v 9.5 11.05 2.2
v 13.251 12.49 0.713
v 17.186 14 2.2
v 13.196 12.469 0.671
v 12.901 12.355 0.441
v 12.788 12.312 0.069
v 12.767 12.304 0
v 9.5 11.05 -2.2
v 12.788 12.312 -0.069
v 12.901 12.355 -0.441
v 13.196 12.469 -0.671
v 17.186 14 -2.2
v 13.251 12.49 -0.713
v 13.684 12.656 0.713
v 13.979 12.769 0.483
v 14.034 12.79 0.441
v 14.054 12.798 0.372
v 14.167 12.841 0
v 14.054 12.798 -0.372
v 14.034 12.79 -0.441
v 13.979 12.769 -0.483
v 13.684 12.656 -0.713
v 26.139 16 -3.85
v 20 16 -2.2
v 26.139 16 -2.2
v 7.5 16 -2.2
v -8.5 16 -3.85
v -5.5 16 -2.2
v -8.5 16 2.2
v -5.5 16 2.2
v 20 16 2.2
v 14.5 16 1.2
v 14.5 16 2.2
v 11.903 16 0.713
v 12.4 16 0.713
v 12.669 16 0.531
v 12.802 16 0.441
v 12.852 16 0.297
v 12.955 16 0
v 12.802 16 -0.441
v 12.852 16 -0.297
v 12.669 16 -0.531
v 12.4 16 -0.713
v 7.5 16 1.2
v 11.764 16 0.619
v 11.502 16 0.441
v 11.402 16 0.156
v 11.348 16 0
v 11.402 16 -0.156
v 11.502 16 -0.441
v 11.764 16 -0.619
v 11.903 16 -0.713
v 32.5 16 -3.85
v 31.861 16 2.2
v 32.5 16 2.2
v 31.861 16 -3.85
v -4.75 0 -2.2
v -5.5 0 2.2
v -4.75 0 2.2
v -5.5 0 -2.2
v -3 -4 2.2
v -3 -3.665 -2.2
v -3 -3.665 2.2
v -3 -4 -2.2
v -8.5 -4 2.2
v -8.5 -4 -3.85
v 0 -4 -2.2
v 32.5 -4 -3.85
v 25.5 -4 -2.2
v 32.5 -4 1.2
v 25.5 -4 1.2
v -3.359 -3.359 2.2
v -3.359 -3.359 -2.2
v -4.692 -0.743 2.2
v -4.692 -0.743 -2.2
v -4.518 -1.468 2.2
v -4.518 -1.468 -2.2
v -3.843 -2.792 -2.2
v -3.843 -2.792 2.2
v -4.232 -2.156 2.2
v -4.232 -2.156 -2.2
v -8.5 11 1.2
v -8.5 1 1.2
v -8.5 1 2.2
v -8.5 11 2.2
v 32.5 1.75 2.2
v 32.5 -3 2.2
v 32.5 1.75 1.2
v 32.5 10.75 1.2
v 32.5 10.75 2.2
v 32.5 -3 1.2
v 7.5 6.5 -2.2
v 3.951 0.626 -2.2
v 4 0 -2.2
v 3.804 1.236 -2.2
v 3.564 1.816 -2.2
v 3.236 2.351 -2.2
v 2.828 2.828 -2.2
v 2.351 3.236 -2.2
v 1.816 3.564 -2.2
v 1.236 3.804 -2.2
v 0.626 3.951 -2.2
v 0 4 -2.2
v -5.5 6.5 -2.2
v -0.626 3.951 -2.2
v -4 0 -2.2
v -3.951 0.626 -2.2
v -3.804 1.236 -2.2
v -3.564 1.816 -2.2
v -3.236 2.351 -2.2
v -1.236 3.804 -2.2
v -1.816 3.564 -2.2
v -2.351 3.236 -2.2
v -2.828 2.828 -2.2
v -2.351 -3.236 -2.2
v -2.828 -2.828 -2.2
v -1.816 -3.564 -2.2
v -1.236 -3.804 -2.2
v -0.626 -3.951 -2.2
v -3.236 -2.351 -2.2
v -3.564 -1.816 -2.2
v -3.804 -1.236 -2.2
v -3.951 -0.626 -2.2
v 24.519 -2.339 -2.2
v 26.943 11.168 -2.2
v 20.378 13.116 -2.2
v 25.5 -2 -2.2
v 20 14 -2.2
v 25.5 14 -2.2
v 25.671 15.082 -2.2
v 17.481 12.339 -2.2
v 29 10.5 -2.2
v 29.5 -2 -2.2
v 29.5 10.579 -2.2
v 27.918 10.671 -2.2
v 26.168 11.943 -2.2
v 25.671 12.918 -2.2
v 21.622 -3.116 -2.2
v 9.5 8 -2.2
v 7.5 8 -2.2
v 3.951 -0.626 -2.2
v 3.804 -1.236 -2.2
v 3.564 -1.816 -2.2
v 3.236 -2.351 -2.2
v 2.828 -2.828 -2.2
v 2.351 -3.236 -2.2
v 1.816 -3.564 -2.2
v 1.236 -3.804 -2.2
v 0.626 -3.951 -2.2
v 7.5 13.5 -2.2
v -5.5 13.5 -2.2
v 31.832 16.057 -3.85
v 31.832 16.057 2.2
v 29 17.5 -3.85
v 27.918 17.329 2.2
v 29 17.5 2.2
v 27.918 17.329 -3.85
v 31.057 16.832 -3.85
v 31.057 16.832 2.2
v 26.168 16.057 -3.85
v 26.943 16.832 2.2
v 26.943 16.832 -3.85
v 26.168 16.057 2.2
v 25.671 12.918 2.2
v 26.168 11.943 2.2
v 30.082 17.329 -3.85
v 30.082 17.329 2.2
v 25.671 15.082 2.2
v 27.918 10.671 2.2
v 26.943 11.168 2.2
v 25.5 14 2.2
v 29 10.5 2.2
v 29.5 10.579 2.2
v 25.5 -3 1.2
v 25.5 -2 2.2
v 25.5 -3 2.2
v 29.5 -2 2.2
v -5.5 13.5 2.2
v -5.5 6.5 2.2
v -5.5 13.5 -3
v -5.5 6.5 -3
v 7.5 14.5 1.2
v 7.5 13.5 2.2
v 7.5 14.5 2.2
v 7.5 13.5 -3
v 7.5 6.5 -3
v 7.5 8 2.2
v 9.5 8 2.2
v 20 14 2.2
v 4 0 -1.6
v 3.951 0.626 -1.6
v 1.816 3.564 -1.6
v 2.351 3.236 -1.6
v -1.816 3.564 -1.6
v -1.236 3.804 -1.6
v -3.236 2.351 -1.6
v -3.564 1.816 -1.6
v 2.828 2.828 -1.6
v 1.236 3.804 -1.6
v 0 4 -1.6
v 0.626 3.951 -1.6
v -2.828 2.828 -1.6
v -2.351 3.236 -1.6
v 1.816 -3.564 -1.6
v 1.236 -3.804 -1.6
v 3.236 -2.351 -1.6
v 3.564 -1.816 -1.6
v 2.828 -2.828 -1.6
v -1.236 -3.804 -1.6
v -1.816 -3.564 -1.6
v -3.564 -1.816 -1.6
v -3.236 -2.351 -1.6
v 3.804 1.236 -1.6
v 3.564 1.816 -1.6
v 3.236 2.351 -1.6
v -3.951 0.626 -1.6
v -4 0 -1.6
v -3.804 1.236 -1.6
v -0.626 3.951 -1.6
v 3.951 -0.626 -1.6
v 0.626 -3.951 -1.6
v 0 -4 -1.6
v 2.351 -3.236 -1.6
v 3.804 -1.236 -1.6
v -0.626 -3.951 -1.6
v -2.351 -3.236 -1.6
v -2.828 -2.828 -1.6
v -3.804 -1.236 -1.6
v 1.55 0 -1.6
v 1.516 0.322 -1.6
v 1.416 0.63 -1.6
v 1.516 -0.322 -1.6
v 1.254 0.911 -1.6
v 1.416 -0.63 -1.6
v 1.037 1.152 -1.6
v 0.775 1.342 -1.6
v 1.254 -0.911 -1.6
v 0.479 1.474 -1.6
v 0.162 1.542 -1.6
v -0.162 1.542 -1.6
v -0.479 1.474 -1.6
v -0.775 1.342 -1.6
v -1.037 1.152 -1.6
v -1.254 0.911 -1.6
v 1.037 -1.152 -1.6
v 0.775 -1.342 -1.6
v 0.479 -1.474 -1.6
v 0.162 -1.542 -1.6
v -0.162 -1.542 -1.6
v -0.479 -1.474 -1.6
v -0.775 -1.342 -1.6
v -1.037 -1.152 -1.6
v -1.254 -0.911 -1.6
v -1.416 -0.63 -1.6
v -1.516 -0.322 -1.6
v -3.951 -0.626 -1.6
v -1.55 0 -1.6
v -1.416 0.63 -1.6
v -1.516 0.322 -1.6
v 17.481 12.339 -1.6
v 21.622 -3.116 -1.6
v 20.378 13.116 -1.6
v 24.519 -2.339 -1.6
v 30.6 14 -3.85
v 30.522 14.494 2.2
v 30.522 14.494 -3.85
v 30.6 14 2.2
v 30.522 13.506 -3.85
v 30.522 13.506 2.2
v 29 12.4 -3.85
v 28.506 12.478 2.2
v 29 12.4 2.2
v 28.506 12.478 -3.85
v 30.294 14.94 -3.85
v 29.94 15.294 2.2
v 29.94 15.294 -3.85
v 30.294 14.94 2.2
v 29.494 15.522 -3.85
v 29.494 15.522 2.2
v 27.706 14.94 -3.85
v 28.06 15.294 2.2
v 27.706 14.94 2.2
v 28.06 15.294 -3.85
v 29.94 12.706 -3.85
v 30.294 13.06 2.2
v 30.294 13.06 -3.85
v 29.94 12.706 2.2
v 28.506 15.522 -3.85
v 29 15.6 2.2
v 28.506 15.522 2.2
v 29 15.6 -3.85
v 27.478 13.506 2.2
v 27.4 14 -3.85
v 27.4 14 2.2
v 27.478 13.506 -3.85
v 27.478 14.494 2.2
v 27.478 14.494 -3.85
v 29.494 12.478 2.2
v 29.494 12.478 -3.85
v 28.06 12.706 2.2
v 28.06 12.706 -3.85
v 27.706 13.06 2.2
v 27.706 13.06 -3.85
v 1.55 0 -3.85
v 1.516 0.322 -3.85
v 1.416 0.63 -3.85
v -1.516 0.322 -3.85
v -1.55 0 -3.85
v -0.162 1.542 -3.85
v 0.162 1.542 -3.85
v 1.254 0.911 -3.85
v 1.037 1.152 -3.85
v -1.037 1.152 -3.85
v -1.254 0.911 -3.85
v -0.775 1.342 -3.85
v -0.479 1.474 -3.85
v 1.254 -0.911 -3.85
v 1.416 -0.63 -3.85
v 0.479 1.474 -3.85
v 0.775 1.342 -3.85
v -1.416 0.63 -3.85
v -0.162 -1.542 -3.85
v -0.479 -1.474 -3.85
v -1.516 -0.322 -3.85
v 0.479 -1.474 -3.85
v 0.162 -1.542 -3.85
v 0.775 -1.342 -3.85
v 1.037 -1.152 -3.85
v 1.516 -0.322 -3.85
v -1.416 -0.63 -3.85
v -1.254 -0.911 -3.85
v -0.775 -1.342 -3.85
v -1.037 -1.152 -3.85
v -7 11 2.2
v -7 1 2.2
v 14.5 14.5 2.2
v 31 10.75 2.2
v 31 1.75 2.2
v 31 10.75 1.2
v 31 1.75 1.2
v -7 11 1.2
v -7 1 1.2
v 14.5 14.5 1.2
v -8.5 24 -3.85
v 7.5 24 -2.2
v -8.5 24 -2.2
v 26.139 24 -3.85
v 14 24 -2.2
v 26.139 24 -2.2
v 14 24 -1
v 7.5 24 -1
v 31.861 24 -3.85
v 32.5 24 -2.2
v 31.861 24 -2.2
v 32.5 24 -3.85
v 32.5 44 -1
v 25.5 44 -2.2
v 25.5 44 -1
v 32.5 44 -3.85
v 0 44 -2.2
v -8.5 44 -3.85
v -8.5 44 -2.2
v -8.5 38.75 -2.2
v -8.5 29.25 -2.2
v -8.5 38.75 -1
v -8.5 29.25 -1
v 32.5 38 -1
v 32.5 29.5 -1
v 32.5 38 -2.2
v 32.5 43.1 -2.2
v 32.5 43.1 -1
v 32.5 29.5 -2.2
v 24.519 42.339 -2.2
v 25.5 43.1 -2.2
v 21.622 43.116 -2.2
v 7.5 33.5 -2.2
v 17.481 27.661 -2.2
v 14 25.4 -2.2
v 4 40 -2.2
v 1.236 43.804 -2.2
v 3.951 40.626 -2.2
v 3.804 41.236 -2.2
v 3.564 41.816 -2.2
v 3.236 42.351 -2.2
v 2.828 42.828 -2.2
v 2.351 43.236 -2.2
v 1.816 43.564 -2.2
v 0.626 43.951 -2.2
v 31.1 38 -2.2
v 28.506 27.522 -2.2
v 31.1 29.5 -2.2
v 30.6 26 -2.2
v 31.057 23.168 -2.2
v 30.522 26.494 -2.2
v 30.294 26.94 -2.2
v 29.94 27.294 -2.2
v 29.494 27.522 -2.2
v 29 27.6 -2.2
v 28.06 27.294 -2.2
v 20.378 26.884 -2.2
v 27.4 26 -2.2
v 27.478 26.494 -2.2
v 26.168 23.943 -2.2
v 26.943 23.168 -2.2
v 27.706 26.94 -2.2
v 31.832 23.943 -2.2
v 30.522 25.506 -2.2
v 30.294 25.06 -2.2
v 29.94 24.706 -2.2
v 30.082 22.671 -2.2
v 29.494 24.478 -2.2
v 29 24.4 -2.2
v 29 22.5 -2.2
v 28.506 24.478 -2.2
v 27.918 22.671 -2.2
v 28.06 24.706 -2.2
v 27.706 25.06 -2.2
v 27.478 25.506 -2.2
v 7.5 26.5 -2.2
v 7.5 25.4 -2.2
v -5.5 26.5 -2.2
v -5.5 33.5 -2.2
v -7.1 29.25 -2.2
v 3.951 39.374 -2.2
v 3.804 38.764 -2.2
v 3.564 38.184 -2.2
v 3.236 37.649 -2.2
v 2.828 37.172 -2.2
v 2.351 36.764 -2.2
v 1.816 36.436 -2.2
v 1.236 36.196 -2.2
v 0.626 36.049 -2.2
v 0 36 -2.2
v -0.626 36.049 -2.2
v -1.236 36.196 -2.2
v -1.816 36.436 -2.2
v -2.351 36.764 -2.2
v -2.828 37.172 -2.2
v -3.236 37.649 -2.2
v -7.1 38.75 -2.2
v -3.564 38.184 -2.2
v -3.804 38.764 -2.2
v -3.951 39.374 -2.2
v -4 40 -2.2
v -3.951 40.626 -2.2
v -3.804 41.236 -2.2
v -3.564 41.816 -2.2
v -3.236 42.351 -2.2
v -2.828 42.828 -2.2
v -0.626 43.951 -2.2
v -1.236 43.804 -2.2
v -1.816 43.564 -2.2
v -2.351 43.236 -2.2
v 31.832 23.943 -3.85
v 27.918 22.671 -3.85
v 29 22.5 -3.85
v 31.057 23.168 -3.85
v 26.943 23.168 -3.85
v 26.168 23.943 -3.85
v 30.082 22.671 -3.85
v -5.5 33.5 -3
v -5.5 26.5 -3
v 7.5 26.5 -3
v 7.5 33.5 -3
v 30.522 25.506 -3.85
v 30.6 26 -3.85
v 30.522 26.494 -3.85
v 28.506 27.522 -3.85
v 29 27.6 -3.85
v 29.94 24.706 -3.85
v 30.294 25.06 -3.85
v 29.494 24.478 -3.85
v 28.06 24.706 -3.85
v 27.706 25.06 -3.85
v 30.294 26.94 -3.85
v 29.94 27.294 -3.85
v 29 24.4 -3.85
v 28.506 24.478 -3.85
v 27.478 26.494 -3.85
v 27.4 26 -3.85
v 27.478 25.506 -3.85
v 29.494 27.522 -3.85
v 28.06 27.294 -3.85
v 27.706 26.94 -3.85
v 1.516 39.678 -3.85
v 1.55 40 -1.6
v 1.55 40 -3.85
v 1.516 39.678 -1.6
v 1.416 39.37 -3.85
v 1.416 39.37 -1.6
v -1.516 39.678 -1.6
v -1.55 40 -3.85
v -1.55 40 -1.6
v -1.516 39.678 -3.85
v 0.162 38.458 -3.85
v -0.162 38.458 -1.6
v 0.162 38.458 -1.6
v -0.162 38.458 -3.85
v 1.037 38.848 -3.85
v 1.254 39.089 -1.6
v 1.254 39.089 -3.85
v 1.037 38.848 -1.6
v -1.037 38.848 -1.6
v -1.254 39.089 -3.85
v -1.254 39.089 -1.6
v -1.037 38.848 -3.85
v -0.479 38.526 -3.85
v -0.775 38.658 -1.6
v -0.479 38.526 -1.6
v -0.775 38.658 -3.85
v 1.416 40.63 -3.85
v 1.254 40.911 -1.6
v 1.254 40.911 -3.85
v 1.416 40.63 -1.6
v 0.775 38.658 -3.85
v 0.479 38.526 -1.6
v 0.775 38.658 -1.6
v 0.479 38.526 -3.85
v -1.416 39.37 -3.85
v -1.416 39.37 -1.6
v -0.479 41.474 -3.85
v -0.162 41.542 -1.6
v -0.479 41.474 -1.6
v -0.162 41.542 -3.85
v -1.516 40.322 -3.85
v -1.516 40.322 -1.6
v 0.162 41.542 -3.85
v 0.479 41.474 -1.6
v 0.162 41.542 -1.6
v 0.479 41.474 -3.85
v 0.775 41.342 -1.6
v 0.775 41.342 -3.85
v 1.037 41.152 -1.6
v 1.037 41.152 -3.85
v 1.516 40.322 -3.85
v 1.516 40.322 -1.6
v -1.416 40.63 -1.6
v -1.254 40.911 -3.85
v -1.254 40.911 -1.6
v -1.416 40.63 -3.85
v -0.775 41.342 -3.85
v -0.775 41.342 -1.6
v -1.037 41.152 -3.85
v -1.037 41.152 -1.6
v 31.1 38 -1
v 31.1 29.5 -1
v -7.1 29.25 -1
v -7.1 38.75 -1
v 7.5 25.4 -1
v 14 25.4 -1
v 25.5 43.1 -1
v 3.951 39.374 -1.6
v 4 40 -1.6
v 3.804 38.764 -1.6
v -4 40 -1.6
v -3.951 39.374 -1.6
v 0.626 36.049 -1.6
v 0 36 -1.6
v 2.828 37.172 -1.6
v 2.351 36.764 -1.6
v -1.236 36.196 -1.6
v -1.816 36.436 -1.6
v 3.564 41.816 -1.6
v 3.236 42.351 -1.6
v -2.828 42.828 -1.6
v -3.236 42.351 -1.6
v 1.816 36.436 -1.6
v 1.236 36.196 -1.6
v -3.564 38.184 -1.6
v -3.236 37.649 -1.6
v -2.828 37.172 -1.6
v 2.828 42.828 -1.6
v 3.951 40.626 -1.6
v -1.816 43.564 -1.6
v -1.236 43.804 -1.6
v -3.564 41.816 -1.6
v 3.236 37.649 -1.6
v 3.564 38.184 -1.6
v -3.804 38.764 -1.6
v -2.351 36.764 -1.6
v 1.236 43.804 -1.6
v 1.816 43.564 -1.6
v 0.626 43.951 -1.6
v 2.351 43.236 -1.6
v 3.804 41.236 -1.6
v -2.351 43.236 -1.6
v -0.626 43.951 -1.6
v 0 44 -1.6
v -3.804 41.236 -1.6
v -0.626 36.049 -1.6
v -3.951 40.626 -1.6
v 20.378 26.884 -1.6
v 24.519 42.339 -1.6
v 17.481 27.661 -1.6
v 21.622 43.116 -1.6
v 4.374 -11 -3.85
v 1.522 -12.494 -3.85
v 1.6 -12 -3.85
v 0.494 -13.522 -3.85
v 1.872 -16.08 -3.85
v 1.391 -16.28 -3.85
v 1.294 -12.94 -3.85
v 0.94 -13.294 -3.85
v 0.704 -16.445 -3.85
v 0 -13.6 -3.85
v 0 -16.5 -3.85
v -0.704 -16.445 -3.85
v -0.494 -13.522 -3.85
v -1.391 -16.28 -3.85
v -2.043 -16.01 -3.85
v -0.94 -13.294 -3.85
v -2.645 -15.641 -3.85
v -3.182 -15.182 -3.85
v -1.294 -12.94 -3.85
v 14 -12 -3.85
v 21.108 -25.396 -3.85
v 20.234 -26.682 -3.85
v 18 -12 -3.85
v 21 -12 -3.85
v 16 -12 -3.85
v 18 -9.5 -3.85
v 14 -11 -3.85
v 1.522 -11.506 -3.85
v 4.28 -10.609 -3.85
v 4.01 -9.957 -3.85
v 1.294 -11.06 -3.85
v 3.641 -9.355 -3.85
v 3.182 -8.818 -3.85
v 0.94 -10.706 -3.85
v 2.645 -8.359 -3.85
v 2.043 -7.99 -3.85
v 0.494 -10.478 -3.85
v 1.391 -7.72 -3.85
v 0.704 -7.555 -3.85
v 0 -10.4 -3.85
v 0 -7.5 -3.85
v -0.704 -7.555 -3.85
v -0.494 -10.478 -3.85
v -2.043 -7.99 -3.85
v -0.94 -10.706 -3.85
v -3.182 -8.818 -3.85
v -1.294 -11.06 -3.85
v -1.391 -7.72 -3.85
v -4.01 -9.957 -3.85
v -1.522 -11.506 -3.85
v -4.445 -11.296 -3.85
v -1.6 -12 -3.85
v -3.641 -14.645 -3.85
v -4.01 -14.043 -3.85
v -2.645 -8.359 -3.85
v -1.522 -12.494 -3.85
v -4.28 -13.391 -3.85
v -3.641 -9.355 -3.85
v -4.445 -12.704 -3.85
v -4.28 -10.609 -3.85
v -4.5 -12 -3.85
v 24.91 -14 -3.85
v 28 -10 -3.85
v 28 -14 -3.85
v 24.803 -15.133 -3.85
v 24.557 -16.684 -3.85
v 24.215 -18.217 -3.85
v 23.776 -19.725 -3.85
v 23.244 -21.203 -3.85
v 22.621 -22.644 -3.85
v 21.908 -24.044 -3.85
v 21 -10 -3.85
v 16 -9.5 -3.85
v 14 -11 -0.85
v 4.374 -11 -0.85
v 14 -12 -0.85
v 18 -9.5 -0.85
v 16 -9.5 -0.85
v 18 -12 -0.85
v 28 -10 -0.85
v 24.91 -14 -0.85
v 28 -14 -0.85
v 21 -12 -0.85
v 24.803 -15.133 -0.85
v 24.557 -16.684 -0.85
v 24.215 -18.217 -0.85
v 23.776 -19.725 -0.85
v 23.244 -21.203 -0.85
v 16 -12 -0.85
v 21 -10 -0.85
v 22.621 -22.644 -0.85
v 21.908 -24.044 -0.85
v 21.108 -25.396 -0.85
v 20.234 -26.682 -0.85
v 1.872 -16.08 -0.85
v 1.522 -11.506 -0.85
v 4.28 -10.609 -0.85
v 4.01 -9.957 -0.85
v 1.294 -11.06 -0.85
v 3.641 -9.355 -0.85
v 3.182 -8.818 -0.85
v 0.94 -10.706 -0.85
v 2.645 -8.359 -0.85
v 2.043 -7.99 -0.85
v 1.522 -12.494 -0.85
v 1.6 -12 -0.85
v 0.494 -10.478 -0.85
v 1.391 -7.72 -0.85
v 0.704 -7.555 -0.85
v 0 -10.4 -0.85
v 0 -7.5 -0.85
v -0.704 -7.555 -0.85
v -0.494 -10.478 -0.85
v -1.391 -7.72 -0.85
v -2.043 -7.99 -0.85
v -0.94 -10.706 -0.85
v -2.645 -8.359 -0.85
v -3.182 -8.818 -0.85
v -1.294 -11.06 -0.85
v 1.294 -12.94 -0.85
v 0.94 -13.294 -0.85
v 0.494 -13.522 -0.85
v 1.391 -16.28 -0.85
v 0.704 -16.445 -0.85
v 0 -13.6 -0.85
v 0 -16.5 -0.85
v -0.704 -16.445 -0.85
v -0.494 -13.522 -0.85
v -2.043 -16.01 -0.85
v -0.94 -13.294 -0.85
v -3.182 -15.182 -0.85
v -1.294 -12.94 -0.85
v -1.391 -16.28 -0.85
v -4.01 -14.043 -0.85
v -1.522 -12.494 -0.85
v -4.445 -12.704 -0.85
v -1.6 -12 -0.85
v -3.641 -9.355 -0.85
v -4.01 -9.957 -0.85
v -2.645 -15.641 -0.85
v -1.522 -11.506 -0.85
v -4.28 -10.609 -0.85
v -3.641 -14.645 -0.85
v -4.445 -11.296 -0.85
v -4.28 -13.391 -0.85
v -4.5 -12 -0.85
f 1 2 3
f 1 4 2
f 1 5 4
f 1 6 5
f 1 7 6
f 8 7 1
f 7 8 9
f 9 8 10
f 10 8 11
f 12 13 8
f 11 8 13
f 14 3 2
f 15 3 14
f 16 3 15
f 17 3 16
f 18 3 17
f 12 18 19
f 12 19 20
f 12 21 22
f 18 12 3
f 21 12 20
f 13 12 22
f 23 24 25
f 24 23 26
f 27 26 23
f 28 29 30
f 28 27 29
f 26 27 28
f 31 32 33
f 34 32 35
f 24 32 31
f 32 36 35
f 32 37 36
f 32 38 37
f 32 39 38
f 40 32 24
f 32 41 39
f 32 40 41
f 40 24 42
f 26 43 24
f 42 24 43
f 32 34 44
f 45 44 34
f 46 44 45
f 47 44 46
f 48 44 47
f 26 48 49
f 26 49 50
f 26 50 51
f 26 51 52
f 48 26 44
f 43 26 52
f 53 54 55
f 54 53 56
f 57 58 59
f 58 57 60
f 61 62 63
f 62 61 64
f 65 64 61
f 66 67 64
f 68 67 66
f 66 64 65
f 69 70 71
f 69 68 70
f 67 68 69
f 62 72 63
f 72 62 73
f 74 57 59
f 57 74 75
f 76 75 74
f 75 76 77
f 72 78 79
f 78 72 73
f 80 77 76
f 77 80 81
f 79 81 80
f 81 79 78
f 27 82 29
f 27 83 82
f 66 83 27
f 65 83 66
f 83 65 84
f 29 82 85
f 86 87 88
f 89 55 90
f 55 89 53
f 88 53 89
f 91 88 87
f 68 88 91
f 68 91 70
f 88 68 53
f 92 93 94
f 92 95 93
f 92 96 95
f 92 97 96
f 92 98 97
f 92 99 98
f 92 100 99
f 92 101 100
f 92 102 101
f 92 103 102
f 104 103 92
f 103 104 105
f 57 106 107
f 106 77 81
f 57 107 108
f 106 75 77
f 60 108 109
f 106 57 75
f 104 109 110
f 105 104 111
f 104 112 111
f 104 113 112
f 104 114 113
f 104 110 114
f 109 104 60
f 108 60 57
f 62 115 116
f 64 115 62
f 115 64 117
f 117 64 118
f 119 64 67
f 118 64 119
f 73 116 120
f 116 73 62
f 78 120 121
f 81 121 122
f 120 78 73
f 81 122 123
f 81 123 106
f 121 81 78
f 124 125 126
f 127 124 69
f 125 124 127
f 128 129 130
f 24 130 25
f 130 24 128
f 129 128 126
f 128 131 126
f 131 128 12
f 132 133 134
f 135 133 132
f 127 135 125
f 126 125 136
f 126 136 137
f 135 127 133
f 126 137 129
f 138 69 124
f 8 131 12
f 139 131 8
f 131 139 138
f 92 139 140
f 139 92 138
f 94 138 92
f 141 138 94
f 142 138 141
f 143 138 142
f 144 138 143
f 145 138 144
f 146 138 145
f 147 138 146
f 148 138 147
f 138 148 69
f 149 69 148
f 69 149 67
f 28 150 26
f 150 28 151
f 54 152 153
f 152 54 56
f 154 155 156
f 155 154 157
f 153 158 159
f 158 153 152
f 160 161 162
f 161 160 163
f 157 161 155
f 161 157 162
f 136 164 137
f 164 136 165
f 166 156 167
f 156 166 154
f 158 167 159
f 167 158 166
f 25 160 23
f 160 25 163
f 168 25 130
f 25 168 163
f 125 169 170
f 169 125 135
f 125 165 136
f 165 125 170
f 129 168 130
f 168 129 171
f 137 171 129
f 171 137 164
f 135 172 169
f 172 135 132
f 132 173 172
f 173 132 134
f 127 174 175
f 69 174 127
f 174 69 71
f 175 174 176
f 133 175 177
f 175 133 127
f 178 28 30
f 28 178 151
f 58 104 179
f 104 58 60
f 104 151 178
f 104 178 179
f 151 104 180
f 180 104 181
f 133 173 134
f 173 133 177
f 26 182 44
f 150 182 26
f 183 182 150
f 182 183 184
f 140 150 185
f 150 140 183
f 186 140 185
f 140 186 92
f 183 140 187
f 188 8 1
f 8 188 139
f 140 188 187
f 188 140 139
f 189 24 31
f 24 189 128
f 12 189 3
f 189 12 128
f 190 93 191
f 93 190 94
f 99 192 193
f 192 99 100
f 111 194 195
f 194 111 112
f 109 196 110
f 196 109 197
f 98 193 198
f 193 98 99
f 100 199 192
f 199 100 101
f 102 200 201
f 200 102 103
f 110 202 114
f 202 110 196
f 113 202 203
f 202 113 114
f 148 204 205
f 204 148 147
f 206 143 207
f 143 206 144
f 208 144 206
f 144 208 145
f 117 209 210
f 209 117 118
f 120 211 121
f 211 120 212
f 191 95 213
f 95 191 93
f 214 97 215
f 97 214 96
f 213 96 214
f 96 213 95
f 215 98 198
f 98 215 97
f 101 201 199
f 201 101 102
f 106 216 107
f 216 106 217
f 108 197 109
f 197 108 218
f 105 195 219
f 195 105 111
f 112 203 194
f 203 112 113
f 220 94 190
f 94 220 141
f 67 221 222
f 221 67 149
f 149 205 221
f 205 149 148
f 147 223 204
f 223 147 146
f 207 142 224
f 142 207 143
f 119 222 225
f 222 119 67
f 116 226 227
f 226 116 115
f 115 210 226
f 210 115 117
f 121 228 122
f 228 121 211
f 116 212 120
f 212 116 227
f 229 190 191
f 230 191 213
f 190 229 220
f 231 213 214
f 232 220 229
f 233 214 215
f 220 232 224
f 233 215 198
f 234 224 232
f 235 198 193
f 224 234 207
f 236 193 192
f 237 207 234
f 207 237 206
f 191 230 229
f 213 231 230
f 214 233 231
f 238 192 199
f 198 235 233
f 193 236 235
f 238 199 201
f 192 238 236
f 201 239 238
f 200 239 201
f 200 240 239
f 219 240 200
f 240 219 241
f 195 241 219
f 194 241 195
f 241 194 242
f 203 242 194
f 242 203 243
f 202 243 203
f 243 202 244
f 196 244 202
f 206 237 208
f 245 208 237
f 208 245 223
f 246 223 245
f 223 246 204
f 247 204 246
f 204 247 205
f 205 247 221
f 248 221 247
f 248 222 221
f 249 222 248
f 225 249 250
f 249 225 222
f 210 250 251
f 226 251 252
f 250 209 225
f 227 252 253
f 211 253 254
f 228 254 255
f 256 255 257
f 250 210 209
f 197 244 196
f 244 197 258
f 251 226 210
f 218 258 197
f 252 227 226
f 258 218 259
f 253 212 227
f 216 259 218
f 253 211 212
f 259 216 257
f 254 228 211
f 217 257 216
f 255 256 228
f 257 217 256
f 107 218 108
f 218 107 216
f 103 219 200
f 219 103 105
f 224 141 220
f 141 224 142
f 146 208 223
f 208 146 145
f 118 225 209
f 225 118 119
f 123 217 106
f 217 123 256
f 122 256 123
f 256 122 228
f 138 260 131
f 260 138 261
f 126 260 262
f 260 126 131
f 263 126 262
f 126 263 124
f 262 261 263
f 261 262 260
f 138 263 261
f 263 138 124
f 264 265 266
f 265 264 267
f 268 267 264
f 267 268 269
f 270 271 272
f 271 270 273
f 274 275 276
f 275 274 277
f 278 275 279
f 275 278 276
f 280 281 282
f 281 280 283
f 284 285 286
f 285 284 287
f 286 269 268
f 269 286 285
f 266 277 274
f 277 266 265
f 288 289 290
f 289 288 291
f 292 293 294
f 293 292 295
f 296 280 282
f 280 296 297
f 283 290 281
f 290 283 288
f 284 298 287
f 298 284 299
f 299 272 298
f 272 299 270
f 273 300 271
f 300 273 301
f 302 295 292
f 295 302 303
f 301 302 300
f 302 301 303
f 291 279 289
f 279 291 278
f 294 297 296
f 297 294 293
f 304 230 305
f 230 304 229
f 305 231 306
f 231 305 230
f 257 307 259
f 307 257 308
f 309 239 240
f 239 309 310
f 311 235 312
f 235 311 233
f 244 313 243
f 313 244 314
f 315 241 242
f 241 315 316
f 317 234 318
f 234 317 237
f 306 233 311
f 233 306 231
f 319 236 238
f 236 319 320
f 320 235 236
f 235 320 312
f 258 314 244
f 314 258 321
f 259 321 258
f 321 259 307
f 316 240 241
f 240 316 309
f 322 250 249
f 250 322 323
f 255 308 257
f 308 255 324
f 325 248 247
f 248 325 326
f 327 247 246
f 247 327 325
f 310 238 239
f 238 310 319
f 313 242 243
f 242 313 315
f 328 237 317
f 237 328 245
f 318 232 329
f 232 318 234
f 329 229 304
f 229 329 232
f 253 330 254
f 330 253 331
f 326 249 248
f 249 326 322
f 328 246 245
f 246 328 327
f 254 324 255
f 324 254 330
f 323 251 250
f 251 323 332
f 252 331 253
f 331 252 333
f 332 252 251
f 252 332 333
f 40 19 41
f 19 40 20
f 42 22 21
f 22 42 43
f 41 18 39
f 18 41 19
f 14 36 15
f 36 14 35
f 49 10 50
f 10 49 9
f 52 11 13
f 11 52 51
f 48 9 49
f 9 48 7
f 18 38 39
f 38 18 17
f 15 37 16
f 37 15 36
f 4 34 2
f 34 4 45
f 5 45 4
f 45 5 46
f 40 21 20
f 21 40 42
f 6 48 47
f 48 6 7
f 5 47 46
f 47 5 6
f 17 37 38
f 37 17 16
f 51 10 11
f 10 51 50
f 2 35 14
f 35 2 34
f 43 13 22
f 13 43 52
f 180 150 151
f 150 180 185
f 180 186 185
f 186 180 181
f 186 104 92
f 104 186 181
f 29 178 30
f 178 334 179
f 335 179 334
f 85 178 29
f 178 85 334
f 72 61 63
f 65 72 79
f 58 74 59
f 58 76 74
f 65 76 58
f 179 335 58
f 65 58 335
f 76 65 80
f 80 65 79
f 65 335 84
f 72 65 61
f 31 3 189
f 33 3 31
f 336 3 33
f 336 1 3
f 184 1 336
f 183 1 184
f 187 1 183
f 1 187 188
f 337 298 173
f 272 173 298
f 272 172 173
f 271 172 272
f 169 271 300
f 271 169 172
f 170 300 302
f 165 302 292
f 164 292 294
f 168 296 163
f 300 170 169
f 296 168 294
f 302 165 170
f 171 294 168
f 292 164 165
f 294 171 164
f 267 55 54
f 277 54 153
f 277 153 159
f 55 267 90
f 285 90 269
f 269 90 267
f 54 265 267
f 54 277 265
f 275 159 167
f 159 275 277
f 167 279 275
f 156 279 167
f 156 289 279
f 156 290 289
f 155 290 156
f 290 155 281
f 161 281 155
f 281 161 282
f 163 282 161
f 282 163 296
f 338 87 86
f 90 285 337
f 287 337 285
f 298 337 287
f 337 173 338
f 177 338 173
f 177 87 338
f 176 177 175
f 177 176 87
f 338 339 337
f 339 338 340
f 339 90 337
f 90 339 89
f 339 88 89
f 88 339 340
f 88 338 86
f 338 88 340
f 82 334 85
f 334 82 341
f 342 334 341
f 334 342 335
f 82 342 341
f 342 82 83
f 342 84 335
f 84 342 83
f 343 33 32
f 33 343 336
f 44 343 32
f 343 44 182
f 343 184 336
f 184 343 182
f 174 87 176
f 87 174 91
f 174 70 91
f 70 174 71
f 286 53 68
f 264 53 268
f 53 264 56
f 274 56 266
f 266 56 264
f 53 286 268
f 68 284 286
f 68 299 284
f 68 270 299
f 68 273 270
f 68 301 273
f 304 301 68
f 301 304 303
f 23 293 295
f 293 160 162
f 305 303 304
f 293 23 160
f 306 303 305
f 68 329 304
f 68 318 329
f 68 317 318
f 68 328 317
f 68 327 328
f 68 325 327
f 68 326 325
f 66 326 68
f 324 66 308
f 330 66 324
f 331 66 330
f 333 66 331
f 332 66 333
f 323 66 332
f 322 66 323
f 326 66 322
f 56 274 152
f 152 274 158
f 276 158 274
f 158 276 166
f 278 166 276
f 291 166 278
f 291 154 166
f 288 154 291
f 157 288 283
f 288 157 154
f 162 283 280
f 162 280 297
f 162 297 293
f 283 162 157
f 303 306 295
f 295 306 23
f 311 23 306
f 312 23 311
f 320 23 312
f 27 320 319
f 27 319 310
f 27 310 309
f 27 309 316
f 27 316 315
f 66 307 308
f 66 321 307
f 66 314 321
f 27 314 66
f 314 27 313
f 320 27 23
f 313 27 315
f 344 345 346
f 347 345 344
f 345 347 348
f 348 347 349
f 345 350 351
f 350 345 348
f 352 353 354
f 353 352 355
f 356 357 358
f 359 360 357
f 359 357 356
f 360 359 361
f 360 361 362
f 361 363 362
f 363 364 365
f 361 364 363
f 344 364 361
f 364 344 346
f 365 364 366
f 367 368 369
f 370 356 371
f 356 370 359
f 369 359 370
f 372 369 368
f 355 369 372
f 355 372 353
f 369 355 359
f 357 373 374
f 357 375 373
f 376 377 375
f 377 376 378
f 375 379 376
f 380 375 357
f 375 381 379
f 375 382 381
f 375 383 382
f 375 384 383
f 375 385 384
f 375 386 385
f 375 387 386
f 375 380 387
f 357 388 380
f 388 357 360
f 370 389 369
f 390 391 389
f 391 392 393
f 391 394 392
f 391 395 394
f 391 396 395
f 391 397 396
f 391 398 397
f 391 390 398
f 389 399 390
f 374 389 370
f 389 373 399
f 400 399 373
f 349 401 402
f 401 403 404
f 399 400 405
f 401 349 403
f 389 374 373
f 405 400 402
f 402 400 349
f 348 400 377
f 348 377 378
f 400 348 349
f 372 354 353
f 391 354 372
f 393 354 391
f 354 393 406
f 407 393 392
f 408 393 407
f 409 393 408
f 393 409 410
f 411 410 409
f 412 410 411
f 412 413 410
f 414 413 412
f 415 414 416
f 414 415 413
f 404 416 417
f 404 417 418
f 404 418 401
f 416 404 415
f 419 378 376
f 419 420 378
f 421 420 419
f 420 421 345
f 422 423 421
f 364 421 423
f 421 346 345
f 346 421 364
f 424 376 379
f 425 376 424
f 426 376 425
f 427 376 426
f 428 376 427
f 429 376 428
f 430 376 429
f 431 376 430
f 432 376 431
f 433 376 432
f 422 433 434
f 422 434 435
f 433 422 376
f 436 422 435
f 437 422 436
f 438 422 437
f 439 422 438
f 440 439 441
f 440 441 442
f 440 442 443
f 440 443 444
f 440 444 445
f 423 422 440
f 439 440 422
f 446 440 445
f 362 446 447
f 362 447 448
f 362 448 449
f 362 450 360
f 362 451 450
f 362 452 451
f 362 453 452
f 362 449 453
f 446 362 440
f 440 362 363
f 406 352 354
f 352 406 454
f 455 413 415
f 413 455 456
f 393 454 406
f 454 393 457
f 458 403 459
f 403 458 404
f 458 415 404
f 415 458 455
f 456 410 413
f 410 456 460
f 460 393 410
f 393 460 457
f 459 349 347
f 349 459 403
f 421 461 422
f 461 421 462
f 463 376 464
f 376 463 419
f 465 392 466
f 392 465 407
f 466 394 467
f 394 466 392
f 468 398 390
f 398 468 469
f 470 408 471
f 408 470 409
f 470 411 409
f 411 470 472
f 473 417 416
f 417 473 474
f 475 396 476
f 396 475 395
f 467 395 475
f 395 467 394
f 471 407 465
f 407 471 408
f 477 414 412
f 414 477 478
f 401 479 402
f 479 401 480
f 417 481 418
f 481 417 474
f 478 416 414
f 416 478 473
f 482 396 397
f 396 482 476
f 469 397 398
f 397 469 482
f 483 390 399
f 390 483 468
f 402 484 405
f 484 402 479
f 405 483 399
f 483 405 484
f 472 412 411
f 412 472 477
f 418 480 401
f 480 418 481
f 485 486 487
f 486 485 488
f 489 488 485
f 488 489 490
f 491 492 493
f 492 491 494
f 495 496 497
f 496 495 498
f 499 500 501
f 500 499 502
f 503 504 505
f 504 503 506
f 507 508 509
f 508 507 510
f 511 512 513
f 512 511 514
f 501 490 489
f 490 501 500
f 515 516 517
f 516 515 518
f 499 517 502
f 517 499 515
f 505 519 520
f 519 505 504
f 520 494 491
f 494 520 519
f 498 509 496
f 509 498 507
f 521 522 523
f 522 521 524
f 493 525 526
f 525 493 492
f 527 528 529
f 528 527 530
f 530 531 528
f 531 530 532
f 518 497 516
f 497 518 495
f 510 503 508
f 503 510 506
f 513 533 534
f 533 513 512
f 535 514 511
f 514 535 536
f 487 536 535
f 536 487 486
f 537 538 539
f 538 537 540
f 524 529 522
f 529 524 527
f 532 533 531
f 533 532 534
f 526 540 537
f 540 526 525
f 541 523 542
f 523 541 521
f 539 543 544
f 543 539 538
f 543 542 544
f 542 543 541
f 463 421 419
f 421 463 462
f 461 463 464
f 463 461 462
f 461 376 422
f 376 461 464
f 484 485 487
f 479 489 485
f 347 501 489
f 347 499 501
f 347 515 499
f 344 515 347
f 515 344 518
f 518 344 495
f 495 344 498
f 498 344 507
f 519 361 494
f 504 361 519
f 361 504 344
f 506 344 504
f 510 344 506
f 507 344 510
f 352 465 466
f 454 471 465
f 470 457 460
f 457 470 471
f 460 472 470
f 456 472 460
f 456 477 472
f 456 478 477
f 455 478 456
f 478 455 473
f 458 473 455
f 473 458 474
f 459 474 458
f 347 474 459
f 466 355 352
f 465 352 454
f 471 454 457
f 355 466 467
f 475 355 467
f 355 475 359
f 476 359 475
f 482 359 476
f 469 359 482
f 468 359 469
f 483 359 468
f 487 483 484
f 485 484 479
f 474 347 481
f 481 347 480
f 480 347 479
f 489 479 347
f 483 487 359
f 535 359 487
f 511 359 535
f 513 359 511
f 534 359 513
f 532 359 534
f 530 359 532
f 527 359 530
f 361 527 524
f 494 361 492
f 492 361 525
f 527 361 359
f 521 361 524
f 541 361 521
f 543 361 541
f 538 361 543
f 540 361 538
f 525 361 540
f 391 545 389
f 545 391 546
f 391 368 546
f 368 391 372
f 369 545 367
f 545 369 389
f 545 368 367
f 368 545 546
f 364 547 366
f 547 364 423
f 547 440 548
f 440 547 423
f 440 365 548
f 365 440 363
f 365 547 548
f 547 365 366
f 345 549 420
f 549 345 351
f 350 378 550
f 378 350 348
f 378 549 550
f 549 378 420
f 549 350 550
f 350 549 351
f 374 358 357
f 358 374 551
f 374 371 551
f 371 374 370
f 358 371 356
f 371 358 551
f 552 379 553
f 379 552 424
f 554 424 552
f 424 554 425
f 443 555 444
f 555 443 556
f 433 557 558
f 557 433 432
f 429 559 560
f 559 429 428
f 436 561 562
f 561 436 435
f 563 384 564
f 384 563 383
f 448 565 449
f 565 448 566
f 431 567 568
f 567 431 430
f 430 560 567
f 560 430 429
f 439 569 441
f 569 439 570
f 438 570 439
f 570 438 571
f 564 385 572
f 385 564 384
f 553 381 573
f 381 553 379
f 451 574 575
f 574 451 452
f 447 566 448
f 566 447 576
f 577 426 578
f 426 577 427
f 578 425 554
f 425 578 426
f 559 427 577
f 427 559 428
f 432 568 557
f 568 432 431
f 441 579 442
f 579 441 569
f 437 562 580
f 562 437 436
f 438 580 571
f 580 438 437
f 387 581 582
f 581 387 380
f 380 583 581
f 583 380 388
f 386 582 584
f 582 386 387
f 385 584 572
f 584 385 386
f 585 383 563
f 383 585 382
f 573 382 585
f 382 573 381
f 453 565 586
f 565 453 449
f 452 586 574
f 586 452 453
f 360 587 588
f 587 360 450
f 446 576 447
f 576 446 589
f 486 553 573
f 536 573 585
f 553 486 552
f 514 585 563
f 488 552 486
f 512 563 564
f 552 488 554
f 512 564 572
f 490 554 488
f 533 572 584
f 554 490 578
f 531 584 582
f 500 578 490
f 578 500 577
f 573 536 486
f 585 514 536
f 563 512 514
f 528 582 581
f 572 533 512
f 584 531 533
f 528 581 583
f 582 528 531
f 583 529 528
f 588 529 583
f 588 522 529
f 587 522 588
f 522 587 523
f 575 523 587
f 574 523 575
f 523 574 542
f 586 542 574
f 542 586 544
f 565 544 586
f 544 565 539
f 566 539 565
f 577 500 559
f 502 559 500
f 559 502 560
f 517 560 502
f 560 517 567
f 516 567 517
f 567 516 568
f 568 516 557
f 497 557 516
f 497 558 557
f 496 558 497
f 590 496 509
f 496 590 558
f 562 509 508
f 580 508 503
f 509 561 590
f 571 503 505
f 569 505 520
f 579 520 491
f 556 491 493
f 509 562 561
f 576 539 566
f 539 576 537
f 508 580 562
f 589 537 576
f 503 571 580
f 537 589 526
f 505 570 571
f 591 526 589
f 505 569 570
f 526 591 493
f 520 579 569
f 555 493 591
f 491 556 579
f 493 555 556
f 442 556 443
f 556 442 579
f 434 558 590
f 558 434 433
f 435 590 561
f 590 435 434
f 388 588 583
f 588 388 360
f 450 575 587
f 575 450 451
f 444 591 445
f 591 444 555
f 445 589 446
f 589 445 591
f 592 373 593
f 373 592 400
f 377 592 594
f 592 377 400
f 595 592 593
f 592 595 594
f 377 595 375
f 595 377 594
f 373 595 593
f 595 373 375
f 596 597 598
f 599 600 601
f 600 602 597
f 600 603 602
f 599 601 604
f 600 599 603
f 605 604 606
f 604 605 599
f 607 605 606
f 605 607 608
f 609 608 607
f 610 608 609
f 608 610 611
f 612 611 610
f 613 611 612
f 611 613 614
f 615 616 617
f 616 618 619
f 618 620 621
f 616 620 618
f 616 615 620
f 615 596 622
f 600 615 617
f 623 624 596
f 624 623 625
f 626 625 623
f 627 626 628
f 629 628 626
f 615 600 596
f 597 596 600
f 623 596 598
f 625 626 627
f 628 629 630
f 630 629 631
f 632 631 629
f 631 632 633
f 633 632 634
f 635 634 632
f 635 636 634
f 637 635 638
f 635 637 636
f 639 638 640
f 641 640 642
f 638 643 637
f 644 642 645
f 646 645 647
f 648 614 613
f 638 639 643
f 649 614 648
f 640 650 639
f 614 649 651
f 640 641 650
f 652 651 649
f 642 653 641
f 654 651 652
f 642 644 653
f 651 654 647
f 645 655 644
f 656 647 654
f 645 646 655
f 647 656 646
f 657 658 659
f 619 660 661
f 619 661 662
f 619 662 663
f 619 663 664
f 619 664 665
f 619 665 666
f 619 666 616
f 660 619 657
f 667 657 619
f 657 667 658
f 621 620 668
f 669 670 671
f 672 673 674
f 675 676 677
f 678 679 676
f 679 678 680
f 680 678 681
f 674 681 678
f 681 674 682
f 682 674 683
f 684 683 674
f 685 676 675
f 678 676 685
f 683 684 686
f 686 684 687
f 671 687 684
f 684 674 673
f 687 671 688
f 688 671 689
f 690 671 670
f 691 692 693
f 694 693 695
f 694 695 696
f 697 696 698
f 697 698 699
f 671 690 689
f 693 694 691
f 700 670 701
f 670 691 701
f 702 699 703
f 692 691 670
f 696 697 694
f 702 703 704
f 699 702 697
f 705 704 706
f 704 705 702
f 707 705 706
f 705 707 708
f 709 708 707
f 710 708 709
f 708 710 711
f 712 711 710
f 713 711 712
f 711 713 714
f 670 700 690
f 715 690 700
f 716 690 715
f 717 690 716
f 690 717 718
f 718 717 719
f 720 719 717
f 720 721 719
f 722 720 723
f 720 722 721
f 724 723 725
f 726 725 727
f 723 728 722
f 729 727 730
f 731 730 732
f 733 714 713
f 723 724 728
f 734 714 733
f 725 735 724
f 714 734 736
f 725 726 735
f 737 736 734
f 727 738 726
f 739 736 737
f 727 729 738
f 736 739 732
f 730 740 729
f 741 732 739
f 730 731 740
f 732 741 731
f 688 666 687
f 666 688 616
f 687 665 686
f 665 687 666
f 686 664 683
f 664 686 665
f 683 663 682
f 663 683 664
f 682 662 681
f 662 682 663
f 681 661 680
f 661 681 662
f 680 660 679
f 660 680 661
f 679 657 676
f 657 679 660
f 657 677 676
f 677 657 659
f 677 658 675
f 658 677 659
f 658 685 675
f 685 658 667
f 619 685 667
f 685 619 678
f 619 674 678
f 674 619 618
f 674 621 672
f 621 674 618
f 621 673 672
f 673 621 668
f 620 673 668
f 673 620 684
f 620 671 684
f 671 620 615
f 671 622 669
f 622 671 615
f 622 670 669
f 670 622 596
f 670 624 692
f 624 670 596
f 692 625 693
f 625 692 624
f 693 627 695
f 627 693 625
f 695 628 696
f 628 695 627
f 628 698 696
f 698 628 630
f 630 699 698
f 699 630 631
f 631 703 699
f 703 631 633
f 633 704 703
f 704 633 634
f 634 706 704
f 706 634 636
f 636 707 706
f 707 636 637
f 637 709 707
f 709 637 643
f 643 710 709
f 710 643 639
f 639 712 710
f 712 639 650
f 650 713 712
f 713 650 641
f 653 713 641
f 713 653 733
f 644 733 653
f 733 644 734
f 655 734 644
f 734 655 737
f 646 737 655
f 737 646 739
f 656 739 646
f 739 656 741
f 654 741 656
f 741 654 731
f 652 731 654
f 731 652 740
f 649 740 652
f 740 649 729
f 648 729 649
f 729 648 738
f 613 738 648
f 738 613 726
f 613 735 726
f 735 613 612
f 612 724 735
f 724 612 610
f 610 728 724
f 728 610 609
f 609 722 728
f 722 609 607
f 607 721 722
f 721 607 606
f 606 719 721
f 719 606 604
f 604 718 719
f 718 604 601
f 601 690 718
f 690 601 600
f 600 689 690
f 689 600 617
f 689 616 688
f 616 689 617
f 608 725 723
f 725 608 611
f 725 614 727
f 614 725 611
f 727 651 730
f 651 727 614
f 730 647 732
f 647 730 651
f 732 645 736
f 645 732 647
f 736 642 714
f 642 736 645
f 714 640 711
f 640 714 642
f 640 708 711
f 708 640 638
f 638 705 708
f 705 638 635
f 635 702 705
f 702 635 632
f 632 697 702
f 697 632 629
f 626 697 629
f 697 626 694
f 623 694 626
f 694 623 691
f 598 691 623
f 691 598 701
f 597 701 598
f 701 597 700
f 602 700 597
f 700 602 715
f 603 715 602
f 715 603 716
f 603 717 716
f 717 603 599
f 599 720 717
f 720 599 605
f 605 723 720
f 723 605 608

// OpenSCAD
//translate([1,0,10])rotate([180,0,0])switch();
//rotate([0,-0,0])internalMechanics();

rotate([-90,0,0]){ // rotate for printing
  case();
  casecover();
  translate([0,2.5-0.15,-12])internalMechanics();
}

module casecover(){
  translate([0,0,40])mirror([0,0,1])intersection(){
    case();
    translate([0,5-1.8,0])cube([100,2,50],true);
  }
  translate([0,4.2,40])mirror([0,0,1]){
    translate([31.1,-4.2+1,2])cube([1.4,2,8.5]);
    translate([-8.5,-4.2+1,1.25])cube([1.4,2,9.5]);
    translate([7.5,-4.2+1,14.6])cube([6.5,2,1.4]);
    translate([25.5,-4.2+1,-4])cube([7,2,0.9]);    
  }
  translate([0,0,40])mirror([0,0,1])difference(){
    translate([0,2.6,0])rotate([90,0,0])cylinder(d=8,h=2,center=true,$fn=40);
    rotate([90,0,0])cylinder(d=3.1,h=20,center=true,$fn=30);
  }
  translate([0,0,40])mirror([0,0,1])translate([21,2.6,5])rotate([0,-15,0])cube([3,2,16],true);
}

module case(){
  difference(){
    union(){
      translate([12,3.1,6])cube([41,1.8,20],true);
      translate([29,0,14])rotate([90,0,0])cylinder(d=7,h=8,$fn=20,center=true);

      translate([29,0,-3])cube([7,8,2],true);
      translate([-7,0,6])cube([3,8,20],true);
      translate([31,0,6])cube([3,8,20],true);
      translate([8.5,0,12])cube([2,8,8],true);
      translate([14,0,15])cube([12,8,2],true);
      difference(){
        translate([13,0,14])rotate([0,-21,0])cube([10,8,3],true);
        translate([13,0,18])cube([14,9,4],true);
      }
      
      translate([0,2.6,0])rotate([90,0,0])cylinder(d=8,h=2,center=true,$fn=40);
      translate([21,2.6,5])rotate([0,-15,0])cube([3,2,16],true);
      difference(){
        translate([-4.5,0,-2])cube([3,8,4],true);
        rotate([90,0,0])cylinder(d=9.5,h=9,center=true, $fn=40);
      }
    }
    translate([29,0,14])rotate([90,0,0])cylinder(d=3.2,h=9,$fn=20,center=true);
    rotate([90,0,0])cylinder(d=3.1,h=20,center=true,$fn=30);
    
    translate([11,0,19])rotate([0,-21,0])cylinder(d=1.5,h=20,center=true,$fn=10); // hole for spring
    translate([1,0,10])cube([13,6,7],true); // place for micric
    translate([0,-5+1.8,0])cube([100,2,50],true); // remove top to have space for cover
    
    // lock holes
    translate([31,-4.2+1,1.75])cube([1.5,2,9]);
    translate([-8.5,-4.2+1,1])cube([1.5,2,10]);
    translate([7.5,-4.2+1,14.5])cube([7,2,2]);
    translate([25.5,-4.2+1,-5])cube([7,2,2]);    

    translate([0,5-0.15,0])cube([100,2,100],true);   // make case thinner

  }
}

module internalMechanics(){
  color("White")translate([0,1.5,-3])rotate([90,-0,0])linear_extrude(3){
    difference(){
      union(){
        difference(){
          translate([0,3])circle(d=50,$fn=100);
          translate([0,23])square([80,40],true);
          translate([-20,0])square([40,40],true);
          rotate([0,0,-30])translate([0,-20])square([80,40],true);
        }
        translate([0,3])circle(d=9,$fn=40);
        translate([24.5,3])square([7,4],true);
        translate([17,3])square([2,5],true);
        translate([9,3])square([10,2],true);
      }
      translate([0,3])circle(d=3.2,$fn=20);
    }
  }
}

module switch(){
  color([0.2,0.2,0.2])cube([13,6,7],true);
  color("Red")translate([-2,0,4])cube([1,1,1],true);
  color("LightGray")translate([0,0,5.2])rotate([0,-15,0]){cube([13,4,0.1],true);translate([8,0,0])rotate([90,0,0])cylinder(d=3,h=4,$fn=10, center=true);}
  color("LightGray"){
    translate([0,0,-4])cube([1,1,3],true);
    translate([5,0,-4])cube([1,1,3],true);
    translate([-5,0,-4])cube([1,1,3],true);
  }
  
}
